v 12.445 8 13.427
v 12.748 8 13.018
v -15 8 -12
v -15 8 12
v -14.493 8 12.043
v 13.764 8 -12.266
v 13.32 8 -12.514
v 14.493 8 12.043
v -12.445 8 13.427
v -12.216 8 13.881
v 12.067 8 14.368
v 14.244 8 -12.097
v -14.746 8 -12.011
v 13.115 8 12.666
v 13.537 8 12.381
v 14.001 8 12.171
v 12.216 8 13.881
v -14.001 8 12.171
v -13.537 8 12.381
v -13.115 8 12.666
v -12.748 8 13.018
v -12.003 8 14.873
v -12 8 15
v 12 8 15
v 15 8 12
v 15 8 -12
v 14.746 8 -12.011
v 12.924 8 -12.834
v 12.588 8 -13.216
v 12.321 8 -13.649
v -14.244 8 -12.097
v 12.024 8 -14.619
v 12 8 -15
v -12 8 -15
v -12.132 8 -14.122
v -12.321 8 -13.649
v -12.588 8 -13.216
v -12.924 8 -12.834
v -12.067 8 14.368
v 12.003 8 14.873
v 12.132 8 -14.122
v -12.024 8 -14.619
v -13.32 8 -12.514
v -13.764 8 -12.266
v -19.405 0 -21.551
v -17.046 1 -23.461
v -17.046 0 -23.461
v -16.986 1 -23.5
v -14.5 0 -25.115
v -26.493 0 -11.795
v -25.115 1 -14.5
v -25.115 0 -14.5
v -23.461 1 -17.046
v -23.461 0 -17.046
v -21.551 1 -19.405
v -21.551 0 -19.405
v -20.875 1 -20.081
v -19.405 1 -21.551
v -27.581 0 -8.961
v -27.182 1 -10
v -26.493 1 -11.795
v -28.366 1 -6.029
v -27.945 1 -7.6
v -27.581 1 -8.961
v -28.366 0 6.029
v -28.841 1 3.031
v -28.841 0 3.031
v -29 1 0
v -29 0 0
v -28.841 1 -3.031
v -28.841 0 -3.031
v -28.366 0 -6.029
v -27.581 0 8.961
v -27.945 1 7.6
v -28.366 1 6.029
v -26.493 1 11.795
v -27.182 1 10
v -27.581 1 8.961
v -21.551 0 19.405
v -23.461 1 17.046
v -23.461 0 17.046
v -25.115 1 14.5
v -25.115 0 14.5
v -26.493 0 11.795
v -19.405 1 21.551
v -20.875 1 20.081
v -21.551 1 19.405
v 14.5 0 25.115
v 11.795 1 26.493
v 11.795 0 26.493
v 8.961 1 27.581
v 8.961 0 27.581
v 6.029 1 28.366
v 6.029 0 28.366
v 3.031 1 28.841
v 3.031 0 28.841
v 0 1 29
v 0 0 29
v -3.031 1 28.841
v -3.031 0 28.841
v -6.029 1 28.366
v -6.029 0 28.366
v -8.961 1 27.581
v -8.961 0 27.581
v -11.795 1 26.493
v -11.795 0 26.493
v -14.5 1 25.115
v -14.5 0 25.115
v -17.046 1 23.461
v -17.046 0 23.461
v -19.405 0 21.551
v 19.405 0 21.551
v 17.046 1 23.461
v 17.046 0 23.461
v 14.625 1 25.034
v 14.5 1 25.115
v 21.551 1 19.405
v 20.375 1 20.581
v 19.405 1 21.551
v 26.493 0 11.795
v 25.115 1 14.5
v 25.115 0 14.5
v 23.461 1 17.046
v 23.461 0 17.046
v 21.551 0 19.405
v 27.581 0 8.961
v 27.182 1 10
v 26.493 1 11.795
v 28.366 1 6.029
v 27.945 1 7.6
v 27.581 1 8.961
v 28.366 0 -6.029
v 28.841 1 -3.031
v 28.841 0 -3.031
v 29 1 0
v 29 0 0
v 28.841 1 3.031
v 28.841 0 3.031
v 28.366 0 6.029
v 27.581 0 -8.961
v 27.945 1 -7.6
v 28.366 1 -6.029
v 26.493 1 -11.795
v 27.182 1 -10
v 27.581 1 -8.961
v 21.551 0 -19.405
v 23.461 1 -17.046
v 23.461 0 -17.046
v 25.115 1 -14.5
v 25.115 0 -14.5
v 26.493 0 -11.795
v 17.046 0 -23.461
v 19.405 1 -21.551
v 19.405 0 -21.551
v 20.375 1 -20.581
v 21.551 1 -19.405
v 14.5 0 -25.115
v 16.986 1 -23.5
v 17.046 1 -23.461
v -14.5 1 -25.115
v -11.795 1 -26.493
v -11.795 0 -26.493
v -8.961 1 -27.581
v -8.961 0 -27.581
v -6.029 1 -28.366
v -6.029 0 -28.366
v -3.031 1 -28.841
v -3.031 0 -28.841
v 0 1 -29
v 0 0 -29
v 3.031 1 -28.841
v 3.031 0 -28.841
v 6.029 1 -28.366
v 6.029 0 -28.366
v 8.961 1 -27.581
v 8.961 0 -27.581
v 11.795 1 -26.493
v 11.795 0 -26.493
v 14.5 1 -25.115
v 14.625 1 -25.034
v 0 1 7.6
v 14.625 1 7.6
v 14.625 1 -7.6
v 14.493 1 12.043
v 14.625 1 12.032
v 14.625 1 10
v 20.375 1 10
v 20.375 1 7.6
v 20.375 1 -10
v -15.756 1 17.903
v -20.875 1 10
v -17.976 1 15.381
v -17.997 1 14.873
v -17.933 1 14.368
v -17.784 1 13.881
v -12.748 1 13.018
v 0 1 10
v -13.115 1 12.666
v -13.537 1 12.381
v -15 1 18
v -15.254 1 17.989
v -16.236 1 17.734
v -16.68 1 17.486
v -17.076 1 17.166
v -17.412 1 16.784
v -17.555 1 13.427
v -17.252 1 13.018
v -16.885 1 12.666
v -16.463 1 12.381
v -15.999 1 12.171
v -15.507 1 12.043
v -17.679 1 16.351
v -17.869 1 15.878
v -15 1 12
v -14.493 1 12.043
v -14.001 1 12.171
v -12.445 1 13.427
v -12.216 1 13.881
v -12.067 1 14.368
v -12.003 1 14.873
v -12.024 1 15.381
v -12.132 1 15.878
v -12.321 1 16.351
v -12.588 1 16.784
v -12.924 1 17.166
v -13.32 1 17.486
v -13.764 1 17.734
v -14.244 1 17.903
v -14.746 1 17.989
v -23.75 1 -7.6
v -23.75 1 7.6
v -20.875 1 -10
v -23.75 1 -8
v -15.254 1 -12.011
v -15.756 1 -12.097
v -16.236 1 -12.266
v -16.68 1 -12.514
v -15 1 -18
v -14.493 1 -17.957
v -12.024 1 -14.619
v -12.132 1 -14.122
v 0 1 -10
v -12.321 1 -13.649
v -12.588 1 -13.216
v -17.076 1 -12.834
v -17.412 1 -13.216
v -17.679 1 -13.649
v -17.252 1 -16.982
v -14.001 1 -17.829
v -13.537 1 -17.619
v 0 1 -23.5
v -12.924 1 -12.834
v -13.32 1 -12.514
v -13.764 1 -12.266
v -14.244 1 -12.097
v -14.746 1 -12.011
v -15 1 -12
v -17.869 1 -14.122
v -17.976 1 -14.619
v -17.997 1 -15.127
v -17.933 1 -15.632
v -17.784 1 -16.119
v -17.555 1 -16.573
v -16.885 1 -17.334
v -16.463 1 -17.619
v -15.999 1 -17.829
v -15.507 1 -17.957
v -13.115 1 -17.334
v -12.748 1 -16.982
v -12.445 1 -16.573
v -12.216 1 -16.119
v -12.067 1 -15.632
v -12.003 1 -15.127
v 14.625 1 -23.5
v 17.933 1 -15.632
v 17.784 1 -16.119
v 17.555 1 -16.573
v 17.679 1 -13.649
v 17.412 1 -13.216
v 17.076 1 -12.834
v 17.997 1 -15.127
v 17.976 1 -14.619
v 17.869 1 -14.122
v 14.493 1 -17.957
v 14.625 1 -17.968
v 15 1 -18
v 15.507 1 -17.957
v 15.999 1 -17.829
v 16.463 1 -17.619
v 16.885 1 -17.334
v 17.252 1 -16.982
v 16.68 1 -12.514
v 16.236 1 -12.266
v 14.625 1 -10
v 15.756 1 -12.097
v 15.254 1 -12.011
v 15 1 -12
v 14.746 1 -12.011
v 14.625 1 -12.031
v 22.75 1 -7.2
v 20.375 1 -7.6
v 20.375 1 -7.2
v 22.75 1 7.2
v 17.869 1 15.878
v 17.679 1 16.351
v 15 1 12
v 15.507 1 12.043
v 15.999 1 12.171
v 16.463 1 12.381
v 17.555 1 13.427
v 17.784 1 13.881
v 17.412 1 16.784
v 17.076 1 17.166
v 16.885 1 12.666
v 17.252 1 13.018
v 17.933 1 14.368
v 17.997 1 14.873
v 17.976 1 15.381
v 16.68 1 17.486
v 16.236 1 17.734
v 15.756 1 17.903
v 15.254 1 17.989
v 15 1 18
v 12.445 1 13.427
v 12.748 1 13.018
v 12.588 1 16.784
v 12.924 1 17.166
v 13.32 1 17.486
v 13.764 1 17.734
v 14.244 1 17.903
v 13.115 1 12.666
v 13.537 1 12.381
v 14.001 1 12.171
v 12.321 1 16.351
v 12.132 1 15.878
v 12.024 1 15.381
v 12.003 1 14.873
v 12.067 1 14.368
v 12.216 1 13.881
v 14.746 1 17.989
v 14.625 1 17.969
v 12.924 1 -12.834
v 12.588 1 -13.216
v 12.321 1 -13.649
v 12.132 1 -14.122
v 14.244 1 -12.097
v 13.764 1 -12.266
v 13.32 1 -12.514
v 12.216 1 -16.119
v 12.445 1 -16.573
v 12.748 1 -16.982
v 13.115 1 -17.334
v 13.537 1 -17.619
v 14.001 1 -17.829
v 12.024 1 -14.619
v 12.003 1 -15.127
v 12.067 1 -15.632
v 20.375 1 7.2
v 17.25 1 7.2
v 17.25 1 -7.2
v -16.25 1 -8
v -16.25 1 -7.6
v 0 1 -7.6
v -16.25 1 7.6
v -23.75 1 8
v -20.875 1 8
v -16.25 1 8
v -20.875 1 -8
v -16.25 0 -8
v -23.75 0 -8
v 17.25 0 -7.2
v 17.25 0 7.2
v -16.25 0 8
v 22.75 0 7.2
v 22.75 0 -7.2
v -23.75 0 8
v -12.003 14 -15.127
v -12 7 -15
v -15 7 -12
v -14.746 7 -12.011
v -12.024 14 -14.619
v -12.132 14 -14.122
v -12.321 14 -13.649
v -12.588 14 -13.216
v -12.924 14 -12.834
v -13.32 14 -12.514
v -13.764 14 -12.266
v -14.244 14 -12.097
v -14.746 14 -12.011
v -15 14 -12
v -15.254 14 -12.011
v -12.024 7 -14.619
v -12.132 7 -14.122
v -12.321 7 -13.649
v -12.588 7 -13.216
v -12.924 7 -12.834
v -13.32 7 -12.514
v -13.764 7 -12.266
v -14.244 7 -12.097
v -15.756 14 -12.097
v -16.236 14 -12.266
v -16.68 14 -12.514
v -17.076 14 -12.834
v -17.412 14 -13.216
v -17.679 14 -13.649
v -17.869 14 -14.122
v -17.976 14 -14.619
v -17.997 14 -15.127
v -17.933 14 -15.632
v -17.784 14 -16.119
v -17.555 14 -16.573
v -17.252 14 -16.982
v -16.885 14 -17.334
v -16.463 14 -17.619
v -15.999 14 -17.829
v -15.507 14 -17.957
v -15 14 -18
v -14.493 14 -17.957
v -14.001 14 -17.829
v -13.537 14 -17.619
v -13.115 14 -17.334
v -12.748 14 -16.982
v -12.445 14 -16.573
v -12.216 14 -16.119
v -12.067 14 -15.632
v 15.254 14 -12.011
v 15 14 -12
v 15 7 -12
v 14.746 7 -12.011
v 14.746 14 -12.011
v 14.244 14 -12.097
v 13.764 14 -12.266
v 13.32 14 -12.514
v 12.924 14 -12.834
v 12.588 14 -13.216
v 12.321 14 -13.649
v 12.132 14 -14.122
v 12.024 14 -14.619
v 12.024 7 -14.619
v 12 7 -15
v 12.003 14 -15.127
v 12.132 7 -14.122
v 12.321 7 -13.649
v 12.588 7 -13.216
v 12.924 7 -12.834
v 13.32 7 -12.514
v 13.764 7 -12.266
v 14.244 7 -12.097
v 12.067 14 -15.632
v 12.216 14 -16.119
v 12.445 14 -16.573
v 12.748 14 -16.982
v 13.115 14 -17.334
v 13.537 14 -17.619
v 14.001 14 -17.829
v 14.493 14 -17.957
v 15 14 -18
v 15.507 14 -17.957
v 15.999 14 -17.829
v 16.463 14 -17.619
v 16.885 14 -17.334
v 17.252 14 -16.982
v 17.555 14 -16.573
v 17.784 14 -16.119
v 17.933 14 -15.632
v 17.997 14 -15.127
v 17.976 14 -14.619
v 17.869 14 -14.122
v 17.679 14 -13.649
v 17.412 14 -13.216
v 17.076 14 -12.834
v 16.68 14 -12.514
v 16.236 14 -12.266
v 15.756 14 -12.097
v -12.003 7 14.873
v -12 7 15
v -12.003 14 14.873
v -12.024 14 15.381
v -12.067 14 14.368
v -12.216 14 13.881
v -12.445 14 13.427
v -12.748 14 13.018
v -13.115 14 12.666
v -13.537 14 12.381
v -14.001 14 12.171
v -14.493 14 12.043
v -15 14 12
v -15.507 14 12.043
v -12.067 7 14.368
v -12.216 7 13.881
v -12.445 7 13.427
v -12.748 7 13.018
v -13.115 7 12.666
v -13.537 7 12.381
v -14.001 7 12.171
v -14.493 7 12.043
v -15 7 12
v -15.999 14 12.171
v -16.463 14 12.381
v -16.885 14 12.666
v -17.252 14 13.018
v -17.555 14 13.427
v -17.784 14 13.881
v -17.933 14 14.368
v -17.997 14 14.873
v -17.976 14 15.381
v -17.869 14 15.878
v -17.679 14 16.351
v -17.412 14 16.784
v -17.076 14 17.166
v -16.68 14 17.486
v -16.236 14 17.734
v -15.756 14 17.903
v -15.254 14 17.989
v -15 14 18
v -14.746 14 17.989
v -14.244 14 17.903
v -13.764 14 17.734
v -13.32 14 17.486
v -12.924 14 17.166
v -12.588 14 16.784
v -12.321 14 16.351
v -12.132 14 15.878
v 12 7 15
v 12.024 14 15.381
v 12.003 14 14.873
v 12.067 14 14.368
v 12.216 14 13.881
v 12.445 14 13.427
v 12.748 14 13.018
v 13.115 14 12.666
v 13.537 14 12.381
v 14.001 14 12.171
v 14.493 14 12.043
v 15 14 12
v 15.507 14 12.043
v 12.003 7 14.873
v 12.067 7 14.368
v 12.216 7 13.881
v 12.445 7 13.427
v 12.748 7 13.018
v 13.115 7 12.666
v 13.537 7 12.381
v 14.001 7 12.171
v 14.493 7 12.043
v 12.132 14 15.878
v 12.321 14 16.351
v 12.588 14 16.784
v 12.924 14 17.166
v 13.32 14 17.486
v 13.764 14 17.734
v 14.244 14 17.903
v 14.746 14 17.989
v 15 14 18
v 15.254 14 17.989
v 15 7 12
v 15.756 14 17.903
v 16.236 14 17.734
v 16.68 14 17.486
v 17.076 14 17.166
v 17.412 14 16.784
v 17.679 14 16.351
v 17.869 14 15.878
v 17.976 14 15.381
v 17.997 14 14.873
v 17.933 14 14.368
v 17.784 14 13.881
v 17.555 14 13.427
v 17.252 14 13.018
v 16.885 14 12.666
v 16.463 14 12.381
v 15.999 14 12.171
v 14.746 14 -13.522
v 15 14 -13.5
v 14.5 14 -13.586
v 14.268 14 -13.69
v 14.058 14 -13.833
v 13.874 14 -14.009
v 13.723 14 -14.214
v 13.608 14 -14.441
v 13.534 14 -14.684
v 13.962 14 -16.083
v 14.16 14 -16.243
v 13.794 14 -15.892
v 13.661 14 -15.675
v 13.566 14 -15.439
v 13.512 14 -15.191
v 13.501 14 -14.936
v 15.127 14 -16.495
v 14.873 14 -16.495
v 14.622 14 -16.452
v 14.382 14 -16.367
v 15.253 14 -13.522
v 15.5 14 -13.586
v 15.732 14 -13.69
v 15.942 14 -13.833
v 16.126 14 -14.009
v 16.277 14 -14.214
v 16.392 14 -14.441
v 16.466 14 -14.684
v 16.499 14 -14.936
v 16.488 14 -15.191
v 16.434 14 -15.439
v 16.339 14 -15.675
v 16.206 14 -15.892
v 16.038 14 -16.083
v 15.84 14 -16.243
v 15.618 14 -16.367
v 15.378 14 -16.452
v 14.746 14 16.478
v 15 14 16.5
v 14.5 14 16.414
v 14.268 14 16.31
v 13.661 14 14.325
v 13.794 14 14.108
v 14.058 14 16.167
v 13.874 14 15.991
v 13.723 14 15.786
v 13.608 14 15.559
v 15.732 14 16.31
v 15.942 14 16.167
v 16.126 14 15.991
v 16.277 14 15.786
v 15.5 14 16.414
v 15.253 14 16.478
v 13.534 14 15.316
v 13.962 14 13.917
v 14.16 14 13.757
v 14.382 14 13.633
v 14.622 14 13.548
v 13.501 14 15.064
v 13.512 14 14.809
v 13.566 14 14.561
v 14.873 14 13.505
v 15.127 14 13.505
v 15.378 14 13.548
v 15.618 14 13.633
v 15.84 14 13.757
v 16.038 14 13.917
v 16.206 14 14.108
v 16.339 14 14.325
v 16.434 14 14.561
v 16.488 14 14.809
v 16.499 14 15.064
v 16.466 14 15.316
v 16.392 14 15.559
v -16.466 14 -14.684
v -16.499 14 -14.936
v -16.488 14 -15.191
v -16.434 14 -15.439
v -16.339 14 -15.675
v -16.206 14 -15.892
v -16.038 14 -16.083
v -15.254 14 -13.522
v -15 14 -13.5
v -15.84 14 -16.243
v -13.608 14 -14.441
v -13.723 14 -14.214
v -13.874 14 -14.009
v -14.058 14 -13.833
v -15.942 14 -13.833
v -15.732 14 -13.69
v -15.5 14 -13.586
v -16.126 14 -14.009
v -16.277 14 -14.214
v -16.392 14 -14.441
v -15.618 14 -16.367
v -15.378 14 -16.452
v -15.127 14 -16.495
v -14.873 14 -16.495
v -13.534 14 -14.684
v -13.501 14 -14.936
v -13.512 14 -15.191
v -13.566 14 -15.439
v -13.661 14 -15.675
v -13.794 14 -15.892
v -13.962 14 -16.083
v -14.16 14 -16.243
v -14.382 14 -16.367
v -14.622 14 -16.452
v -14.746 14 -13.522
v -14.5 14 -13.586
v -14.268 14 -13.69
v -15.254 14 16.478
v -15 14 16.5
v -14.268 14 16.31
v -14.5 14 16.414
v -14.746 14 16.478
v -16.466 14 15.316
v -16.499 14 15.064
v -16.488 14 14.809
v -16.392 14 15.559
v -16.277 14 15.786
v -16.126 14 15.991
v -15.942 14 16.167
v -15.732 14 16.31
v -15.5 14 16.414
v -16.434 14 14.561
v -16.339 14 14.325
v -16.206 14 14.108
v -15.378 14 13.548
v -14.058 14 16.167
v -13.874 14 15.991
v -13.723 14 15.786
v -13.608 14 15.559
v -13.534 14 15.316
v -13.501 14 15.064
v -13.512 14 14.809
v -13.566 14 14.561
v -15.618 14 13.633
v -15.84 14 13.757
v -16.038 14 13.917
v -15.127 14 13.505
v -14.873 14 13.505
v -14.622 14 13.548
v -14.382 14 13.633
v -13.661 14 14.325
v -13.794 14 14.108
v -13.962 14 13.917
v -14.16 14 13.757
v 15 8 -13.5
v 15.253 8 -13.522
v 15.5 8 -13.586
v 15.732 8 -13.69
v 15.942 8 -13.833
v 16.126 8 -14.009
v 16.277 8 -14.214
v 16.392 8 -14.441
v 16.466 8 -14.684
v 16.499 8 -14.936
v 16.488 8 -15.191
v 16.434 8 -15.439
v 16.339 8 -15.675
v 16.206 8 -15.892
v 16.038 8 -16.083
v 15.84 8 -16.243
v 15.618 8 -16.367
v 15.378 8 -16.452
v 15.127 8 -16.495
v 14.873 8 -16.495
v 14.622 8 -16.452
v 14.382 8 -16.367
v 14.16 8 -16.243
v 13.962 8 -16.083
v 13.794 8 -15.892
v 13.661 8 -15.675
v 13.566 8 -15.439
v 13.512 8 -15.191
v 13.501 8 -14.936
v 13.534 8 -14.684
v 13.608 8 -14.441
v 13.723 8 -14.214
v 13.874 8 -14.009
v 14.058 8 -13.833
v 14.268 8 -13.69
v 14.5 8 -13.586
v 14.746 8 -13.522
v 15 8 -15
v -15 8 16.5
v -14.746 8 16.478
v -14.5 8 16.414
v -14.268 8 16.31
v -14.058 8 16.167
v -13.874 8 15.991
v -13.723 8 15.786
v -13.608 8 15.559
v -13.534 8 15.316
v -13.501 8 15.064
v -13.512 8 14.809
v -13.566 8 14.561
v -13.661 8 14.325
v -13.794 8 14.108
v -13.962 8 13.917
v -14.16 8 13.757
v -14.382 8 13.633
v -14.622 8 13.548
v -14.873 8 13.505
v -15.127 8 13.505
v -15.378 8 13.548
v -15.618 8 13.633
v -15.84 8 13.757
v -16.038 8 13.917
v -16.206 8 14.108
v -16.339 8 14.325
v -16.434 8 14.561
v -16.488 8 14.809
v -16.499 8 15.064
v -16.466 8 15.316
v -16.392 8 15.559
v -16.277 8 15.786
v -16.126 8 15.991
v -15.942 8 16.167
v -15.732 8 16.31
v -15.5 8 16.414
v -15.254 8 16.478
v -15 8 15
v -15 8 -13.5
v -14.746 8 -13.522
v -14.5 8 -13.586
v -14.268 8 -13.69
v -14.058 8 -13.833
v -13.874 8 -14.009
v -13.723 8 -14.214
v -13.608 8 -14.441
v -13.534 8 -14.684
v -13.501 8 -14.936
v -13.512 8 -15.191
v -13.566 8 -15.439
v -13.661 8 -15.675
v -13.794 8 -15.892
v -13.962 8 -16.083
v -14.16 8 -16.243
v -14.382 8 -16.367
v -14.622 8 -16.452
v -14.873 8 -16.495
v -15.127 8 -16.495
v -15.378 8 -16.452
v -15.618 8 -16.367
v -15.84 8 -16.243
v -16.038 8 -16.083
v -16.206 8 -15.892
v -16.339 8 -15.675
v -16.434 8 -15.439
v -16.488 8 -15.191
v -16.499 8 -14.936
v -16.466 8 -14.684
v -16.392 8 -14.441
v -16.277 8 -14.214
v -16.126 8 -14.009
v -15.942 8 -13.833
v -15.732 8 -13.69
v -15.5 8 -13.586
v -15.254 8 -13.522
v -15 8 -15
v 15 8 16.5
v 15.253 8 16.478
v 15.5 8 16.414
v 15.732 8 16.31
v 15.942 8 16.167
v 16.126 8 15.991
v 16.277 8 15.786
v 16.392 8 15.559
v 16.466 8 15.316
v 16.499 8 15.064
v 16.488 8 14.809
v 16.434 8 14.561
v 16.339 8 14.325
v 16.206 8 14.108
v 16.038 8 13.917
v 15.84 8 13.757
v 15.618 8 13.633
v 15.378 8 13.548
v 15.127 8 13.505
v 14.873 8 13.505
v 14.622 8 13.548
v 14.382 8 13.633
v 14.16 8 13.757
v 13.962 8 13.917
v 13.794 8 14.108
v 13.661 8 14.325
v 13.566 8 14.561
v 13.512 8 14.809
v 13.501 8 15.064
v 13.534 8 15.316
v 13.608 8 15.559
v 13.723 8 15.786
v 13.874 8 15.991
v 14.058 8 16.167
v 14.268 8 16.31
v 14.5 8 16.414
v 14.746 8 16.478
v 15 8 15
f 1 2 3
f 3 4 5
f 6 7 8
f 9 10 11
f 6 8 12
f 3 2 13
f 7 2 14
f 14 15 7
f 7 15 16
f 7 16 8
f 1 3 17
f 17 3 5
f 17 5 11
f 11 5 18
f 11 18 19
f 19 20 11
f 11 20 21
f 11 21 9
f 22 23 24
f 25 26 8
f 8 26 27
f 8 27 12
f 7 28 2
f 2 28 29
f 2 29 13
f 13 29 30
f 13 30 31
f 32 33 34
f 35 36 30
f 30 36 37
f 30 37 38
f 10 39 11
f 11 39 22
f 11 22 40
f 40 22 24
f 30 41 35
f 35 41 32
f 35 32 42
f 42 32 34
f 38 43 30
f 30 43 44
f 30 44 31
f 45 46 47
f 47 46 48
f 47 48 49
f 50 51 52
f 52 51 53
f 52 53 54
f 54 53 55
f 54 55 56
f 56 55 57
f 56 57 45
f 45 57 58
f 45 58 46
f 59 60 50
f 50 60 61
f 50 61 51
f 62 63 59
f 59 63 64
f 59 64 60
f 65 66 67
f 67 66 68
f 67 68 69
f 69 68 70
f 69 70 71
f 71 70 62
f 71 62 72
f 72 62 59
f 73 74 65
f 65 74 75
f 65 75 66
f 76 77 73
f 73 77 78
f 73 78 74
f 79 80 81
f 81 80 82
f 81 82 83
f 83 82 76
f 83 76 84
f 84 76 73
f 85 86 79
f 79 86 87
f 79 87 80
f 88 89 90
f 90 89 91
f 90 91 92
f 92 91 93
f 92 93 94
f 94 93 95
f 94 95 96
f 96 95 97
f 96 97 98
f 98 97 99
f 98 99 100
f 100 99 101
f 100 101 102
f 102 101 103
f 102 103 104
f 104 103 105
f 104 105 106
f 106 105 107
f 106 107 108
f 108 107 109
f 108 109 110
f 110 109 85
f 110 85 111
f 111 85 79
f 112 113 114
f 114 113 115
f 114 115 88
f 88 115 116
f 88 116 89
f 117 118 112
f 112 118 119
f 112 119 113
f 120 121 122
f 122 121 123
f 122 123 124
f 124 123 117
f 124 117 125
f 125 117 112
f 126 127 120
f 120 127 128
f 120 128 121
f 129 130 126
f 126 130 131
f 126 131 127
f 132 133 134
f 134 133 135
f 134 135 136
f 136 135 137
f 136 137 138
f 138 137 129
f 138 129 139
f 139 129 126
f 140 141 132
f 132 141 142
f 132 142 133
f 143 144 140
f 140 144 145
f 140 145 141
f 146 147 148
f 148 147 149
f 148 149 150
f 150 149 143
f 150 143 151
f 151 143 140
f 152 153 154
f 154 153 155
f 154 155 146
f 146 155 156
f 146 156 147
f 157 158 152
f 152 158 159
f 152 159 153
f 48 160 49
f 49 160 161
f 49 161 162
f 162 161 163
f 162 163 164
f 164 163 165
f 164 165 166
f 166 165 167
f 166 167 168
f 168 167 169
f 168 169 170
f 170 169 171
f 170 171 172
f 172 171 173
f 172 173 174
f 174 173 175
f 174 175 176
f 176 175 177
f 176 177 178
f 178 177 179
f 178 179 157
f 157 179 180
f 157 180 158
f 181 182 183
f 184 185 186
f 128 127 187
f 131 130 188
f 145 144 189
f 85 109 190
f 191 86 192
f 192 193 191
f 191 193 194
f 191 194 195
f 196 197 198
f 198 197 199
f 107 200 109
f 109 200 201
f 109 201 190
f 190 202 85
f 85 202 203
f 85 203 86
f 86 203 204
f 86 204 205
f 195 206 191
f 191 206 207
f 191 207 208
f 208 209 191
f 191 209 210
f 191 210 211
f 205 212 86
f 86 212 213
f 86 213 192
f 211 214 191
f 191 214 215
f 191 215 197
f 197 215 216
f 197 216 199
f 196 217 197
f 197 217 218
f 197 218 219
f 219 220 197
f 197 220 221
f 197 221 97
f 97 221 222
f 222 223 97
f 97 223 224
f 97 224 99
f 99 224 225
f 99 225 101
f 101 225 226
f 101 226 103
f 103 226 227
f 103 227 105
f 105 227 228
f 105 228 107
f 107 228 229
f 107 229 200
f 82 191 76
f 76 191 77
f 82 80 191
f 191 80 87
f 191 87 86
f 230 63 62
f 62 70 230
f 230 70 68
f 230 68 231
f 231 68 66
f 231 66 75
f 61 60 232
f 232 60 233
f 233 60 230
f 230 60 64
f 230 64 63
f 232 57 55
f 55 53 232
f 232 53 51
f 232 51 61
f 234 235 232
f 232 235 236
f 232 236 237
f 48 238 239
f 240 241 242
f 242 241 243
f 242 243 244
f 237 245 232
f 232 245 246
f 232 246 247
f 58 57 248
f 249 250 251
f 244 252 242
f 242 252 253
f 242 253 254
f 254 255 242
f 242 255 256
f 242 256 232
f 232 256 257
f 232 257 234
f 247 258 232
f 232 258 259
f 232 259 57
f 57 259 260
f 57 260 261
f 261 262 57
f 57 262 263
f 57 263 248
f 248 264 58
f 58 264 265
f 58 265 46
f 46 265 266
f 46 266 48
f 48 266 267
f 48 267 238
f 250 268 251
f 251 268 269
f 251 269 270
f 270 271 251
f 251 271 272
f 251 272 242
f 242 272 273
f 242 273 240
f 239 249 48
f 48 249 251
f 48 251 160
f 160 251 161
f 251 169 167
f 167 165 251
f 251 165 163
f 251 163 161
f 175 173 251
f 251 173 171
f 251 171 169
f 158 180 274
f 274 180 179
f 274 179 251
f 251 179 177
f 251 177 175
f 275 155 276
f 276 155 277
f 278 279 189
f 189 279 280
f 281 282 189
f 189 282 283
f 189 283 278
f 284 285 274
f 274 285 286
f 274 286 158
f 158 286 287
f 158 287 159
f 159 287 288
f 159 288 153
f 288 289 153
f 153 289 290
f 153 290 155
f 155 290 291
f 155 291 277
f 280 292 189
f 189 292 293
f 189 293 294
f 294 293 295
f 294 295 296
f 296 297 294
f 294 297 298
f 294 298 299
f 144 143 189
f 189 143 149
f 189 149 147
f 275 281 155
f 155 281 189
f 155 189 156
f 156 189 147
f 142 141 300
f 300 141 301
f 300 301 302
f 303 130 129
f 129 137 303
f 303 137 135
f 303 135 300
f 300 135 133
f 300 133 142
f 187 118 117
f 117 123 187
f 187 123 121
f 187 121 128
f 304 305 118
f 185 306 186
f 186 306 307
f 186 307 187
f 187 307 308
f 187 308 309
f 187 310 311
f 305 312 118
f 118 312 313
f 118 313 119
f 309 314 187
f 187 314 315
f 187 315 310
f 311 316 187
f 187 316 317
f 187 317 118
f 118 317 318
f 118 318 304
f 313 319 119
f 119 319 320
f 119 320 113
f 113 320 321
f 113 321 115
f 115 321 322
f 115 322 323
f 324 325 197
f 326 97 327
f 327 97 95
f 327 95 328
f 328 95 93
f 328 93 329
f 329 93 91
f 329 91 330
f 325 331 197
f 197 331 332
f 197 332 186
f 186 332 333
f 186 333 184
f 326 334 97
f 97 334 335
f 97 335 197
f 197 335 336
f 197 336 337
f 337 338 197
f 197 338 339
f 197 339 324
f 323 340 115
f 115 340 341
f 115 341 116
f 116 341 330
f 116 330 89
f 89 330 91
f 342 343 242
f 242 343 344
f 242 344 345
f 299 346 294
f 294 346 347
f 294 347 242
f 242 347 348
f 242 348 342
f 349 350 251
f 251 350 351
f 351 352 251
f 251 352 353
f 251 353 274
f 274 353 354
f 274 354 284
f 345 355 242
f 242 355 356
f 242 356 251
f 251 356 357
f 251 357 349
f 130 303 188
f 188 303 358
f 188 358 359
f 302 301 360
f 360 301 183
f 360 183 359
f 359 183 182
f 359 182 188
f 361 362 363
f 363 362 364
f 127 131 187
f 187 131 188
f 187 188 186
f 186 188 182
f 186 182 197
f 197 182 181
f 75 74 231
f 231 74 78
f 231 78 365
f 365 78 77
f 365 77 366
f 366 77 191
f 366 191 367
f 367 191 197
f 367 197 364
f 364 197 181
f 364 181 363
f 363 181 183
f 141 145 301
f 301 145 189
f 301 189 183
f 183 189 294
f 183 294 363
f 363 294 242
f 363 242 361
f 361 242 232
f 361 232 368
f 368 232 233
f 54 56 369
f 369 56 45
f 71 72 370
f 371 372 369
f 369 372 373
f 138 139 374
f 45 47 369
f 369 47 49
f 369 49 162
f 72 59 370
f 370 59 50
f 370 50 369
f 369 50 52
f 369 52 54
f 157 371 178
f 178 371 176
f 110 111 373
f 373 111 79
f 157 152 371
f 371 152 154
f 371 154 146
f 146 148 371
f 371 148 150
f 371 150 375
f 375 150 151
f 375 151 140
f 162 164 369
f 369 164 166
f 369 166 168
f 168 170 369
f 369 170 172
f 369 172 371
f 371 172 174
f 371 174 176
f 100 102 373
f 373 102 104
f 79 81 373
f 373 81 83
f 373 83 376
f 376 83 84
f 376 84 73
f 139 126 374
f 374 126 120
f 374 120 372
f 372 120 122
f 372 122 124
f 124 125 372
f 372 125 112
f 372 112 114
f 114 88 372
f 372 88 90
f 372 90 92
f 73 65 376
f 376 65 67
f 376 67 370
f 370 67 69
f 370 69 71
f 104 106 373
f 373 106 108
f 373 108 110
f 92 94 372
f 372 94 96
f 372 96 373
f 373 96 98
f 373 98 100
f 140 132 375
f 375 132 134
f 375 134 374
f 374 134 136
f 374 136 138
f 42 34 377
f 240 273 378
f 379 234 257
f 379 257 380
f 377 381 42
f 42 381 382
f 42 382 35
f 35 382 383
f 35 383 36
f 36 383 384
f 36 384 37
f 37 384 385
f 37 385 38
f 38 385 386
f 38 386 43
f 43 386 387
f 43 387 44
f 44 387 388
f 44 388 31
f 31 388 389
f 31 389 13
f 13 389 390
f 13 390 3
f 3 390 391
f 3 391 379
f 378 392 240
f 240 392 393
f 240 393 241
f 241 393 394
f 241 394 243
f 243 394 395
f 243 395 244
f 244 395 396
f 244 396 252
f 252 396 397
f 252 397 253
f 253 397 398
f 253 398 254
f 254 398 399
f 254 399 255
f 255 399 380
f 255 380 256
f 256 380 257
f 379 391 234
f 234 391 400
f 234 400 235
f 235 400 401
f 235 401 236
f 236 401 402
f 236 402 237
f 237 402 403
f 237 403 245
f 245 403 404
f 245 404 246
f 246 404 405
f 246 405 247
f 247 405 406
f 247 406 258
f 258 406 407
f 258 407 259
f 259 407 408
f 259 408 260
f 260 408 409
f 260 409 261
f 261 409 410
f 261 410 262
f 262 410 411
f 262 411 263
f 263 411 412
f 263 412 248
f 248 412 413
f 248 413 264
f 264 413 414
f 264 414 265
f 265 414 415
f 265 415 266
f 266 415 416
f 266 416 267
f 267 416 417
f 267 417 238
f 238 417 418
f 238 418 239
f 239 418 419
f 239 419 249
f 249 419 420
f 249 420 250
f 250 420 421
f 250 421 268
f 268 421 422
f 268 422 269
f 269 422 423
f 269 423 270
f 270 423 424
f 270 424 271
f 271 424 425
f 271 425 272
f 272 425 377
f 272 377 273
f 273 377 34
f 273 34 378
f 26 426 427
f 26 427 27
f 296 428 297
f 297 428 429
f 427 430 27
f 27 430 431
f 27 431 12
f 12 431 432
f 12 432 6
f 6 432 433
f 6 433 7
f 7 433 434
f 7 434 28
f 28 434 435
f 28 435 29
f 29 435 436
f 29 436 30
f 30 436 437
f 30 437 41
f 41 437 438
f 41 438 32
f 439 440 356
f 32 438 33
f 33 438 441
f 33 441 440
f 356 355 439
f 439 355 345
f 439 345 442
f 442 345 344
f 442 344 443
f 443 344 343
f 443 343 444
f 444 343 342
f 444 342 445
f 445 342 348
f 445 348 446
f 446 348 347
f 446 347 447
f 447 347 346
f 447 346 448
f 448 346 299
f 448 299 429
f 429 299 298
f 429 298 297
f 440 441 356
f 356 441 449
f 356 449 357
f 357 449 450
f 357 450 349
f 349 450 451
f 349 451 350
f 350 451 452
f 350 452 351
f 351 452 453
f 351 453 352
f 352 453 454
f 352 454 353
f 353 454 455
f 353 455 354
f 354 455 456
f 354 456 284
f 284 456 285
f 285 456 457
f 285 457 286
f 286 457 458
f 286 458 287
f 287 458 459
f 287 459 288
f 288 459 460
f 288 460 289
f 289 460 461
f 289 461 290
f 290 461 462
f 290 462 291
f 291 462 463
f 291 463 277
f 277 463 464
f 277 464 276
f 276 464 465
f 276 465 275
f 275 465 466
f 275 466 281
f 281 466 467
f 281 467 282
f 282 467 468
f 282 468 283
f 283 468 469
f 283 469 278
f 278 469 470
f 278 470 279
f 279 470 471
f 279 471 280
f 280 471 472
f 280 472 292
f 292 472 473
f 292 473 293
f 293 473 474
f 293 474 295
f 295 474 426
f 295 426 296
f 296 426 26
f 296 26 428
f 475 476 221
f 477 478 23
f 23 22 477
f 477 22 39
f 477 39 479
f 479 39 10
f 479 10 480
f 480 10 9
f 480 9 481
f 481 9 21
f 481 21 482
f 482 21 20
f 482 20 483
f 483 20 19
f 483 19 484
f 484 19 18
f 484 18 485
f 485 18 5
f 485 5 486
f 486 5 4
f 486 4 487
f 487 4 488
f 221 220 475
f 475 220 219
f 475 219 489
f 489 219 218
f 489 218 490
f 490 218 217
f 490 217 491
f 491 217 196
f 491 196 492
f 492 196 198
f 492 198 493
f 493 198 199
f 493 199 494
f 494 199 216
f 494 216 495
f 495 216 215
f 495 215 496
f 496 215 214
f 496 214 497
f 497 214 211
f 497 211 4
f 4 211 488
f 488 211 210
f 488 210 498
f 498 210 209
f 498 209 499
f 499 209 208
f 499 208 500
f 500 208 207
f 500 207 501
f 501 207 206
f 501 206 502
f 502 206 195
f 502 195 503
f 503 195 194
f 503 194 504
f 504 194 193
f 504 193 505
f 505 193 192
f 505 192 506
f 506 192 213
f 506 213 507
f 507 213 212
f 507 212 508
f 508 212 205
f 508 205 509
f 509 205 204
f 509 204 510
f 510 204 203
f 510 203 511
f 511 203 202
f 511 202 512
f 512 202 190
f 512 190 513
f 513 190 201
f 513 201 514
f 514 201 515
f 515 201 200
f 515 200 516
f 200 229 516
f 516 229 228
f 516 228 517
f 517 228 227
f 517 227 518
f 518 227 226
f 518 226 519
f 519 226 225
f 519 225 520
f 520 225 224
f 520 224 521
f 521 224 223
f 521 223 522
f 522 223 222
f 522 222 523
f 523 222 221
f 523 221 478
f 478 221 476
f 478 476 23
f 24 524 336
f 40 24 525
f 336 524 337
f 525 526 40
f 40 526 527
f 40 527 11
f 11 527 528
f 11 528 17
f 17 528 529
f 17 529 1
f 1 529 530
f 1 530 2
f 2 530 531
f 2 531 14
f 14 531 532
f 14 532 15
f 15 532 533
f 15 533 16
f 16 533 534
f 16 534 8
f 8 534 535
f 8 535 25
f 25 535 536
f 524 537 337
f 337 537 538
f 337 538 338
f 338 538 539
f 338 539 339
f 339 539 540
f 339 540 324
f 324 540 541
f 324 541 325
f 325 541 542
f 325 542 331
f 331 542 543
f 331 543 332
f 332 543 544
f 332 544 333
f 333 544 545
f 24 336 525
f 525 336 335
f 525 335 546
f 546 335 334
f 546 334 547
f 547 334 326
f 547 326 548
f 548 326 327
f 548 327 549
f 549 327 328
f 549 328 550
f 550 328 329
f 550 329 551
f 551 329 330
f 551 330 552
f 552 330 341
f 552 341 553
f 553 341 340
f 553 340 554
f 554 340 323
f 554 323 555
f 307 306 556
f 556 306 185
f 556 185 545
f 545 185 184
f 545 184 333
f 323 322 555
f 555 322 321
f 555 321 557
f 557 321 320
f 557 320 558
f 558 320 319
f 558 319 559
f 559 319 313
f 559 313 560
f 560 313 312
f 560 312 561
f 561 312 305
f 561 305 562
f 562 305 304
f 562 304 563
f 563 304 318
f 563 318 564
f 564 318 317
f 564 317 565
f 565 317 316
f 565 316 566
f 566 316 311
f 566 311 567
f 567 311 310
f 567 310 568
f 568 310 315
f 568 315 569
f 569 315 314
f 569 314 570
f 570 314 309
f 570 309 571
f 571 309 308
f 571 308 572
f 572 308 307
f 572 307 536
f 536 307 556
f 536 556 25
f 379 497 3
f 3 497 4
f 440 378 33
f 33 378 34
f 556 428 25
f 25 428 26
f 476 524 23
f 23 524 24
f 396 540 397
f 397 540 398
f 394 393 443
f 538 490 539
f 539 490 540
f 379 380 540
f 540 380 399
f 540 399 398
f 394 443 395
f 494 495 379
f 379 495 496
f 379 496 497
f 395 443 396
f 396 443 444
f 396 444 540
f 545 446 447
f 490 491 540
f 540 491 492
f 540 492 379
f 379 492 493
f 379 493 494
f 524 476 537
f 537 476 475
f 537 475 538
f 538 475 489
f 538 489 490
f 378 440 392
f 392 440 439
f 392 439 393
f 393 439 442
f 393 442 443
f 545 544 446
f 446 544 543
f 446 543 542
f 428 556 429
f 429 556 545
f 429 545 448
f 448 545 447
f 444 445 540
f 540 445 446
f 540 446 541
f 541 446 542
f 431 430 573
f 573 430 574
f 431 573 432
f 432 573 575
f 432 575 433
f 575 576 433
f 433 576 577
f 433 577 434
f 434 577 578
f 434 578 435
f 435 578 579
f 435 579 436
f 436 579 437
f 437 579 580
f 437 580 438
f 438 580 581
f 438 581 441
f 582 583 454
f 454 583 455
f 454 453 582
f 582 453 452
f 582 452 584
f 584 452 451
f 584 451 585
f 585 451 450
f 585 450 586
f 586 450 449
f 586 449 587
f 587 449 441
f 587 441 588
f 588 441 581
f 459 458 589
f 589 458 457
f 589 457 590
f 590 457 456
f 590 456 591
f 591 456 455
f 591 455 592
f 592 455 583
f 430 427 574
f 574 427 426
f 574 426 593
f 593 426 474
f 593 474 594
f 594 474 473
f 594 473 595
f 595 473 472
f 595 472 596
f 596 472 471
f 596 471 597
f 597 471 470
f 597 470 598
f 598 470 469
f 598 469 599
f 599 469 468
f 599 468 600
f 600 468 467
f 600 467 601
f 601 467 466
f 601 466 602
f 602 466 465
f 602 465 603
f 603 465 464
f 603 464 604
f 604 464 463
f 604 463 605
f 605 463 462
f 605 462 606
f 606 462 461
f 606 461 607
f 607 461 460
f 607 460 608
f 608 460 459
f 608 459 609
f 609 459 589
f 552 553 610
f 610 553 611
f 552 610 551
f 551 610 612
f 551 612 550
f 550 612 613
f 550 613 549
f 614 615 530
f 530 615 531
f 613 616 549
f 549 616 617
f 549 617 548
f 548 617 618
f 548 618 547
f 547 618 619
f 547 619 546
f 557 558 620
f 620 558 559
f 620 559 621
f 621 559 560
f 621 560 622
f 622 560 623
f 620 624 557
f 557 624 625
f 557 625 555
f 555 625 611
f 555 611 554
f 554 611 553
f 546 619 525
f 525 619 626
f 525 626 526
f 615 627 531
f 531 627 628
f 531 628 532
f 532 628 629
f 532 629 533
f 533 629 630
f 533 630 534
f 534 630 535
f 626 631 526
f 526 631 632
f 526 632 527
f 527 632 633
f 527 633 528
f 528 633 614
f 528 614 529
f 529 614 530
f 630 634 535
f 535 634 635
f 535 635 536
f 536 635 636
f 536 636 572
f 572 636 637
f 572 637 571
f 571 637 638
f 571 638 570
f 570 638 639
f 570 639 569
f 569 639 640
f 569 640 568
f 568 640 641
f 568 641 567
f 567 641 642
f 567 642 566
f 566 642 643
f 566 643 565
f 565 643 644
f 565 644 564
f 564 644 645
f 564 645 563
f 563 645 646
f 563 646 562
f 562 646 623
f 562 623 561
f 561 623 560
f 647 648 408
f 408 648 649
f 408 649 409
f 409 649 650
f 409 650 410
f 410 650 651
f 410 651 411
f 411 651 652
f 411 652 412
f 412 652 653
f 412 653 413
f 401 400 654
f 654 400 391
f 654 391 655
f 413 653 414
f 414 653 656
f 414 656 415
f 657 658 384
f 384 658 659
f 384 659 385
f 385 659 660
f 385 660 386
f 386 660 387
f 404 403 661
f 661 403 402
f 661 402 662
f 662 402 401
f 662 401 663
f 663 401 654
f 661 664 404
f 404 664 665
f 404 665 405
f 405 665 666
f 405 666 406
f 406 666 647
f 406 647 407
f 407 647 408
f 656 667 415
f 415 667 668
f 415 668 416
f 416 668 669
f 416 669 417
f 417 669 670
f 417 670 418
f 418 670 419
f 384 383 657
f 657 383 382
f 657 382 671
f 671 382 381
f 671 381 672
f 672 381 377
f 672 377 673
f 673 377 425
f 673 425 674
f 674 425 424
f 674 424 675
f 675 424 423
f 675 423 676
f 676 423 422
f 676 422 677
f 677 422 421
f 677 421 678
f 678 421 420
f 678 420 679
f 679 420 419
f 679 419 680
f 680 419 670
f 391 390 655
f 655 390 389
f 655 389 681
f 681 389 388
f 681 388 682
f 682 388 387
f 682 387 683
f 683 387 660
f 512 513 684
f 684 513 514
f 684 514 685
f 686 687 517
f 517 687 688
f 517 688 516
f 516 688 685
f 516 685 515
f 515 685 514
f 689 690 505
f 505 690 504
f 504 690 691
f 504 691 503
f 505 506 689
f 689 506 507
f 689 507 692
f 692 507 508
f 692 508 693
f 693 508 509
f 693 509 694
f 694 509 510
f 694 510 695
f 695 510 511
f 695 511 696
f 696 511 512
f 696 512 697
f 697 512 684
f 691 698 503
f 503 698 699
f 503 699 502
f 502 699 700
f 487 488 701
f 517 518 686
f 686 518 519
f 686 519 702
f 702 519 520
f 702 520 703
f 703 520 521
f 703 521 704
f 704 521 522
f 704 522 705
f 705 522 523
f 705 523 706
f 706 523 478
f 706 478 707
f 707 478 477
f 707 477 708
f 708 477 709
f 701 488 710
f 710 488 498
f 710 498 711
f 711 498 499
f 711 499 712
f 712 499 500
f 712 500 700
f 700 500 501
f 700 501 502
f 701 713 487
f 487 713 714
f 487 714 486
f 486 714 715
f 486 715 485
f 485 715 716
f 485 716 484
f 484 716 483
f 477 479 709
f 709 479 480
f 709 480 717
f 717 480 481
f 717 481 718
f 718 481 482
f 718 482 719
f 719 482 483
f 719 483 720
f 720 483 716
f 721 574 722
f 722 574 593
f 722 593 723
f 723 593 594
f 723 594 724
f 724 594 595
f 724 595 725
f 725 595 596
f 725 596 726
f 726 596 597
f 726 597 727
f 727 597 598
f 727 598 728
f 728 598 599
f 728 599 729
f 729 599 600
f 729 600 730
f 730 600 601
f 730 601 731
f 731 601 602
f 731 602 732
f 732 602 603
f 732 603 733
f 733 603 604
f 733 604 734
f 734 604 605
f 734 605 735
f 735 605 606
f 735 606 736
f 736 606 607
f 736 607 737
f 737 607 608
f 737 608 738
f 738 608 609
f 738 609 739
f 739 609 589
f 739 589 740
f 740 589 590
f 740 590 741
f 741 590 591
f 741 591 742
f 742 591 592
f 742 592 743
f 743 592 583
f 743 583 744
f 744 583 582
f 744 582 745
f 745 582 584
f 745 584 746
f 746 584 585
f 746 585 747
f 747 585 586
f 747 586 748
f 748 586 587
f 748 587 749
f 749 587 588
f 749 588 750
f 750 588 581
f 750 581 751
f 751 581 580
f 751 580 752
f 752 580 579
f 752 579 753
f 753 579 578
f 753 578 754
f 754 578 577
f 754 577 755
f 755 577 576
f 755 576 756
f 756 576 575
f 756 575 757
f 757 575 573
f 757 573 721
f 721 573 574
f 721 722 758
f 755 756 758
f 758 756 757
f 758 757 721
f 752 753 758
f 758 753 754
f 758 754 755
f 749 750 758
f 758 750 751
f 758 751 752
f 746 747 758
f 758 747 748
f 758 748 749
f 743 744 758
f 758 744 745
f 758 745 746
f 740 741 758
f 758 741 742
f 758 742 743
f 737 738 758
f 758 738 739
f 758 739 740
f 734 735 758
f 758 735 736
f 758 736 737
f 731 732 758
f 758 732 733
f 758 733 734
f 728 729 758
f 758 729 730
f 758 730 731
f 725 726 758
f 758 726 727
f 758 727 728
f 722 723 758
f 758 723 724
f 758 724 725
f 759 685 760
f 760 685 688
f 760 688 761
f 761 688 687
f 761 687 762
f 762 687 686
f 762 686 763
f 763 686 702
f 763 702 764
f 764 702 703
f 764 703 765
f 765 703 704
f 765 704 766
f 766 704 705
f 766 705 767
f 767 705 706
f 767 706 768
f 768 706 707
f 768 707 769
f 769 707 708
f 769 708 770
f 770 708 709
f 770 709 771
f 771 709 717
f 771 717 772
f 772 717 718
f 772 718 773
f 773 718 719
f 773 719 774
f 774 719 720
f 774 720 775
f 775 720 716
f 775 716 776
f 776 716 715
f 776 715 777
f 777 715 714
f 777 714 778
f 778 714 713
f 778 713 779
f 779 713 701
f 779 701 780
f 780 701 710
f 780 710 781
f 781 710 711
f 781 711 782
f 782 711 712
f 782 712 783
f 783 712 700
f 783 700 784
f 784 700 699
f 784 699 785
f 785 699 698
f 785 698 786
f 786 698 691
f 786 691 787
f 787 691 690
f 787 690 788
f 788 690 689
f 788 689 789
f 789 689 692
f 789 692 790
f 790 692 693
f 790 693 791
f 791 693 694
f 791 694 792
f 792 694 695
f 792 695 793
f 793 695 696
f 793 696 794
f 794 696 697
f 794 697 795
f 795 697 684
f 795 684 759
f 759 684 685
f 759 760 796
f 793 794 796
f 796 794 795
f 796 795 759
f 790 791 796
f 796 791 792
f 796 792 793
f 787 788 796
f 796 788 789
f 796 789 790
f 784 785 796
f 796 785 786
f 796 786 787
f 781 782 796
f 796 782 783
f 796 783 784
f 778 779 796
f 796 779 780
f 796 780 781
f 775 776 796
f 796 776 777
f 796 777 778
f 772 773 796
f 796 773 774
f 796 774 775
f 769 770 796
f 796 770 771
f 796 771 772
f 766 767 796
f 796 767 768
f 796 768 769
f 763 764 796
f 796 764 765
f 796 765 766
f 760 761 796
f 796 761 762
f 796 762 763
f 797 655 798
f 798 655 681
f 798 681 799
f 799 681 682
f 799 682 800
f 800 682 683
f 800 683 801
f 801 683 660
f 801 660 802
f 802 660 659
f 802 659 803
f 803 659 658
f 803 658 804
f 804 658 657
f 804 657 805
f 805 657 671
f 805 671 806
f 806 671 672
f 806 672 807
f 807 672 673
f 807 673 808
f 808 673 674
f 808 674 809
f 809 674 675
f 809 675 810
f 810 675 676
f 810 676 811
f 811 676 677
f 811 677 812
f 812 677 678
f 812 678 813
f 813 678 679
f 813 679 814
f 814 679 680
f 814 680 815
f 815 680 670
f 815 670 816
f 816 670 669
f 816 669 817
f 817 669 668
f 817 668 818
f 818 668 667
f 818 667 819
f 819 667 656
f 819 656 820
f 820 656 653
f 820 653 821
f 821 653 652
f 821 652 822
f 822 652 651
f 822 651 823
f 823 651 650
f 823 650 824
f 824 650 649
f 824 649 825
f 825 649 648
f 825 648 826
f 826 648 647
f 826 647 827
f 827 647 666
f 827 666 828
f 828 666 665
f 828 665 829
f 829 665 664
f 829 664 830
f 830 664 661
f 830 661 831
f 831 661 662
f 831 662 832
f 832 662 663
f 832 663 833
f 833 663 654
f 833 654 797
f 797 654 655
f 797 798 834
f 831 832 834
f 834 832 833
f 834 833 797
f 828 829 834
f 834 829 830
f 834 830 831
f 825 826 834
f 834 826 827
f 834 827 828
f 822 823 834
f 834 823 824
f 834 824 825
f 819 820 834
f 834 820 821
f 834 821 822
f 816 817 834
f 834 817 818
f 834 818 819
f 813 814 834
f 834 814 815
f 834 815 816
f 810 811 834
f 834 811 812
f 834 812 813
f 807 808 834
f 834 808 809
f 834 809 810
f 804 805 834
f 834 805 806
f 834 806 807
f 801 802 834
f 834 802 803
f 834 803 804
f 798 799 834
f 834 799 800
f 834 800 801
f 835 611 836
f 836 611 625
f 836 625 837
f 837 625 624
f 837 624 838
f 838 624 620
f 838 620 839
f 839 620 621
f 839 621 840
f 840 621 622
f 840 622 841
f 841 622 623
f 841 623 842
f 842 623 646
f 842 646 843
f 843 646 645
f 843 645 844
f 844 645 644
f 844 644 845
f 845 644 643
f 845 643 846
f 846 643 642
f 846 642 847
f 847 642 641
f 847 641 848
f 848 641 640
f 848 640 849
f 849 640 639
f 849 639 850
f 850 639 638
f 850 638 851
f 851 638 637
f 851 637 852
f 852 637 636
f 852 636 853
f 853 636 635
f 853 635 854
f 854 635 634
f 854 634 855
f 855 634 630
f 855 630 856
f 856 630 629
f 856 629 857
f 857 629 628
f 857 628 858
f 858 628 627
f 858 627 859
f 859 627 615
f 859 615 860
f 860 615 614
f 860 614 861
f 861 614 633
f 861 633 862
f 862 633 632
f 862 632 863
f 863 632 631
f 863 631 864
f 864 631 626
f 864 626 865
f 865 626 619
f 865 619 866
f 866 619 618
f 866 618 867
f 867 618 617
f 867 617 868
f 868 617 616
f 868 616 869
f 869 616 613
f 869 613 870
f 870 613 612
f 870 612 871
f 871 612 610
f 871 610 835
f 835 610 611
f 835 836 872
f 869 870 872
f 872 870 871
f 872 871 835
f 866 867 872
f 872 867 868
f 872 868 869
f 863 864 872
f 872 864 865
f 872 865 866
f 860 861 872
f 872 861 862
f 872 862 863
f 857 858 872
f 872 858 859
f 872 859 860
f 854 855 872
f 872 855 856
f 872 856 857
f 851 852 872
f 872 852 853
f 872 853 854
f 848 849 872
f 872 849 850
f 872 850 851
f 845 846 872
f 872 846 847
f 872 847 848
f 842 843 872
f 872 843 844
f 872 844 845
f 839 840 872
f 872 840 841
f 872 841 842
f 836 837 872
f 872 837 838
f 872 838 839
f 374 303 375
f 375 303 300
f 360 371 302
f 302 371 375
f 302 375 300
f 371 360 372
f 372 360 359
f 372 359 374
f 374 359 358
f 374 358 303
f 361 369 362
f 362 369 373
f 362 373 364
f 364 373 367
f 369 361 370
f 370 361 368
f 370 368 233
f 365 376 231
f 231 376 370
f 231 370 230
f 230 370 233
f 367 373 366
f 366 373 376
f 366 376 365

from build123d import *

# Parameters (mm, degrees)
CROQUIS1_R              = 29
SALIENTE_EXTRUIR1_DEPTH = 1
CROQUIS2_R              = 3
SALIENTE_EXTRUIR2_DEPTH = 7
SALIENTE_EXTRUIR3_START = -1
SALIENTE_EXTRUIR3_DEPTH = 1
CROQUIS4_R              = 3
SALIENTE_EXTRUIR4_DEPTH = 6
CROQUIS5_R              = 1.5
CORTAR_EXTRUIR1_DEPTH   = 6
CORTAR_EXTRUIR2_REACH   = 45.336
CROQUIS6_W              = 5.5
CROQUIS6_H              = 14.4
CROQUIS6_W_2            = 7.5
CROQUIS6_H_2            = 16


with BuildPart() as part:
    # Croquis1 → Saliente-Extruir1 (new body)
    with BuildSketch(Plane(origin=(0, 0, 0), x_dir=(1, 0, 0), z_dir=(0, 1, 0))):
        with Locations(Location((0, 0, 0), (0, 0, 270))):
            Circle(CROQUIS1_R)
    extrude(amount=SALIENTE_EXTRUIR1_DEPTH)

    # Croquis2 → Saliente-Extruir2 (add)
    with BuildSketch(Plane(origin=(0, 1, 0), x_dir=(1, 0, 0), z_dir=(0, 1, 0))):
        with Locations(Location((-15, 15, 0), (0, 0, 270))):
            Circle(CROQUIS2_R)
        with Locations(Location((15, 15, 0), (0, 0, 270))):
            Circle(CROQUIS2_R)
        with Locations(Location((-15, -15, 0), (0, 0, 270))):
            Circle(CROQUIS2_R)
        with Locations(Location((15, -15, 0), (0, 0, 270))):
            Circle(CROQUIS2_R)
    extrude(amount=SALIENTE_EXTRUIR2_DEPTH)

    # Croquis3 → Saliente-Extruir3 (add)
    with BuildSketch(Plane(origin=(0, 8, 0), x_dir=(1, 0, 0), z_dir=(0, 1, 0)).offset(SALIENTE_EXTRUIR3_START)):
        with BuildLine():
            Line((-15, -12), (-15, 12))
            ThreePointArc((-15, 12), (-12.878679656, 12.878679656), (-12, 15))
            Line((-12, 15), (12, 15))
            ThreePointArc((12, 15), (12.878679656, 12.878679656), (15, 12))
            Line((15, 12), (15, -12))
            ThreePointArc((15, -12), (12.878679656, -12.878679656), (12, -15))
            Line((12, -15), (-12, -15))
            ThreePointArc((-12, -15), (-12.878679656, -12.878679656), (-15, -12))
        make_face()
    extrude(amount=SALIENTE_EXTRUIR3_DEPTH)

    # Croquis4 → Saliente-Extruir4 (add)
    with BuildSketch(Plane(origin=(0, 8, 0), x_dir=(1, 0, 0), z_dir=(0, 1, 0))):
        with Locations(Location((15, 15, 0), (0, 0, 270))):
            Circle(CROQUIS4_R)
        with Locations(Location((15, -15, 0), (0, 0, 270))):
            Circle(CROQUIS4_R)
        with Locations(Location((-15, 15, 0), (0, 0, 270))):
            Circle(CROQUIS4_R)
        with Locations(Location((-15, -15, 0), (0, 0, 270))):
            Circle(CROQUIS4_R)
    extrude(amount=SALIENTE_EXTRUIR4_DEPTH)

    # Croquis5 → Cortar-Extruir1 (cut)
    with BuildSketch(Plane(origin=(0, 14, 0), x_dir=(1, 0, 0), z_dir=(0, 1, 0))):
        with Locations(Location((15, 15, 0), (0, 0, 270))):
            Circle(CROQUIS5_R)
        with Locations(Location((15, -15, 0), (0, 0, 270))):
            Circle(CROQUIS5_R)
        with Locations(Location((-15, -15, 0), (0, 0, 270))):
            Circle(CROQUIS5_R)
        with Locations(Location((-15, 15, 0), (0, 0, 270))):
            Circle(CROQUIS5_R)
    extrude(amount=-CORTAR_EXTRUIR1_DEPTH, mode=Mode.SUBTRACT)

    # Croquis6 → Cortar-Extruir2 (cut, up to next)
    with BuildSketch(Plane.XZ, mode=Mode.PRIVATE) as cortar_extruir2_sk1:
        with Locations((20, 0)):
            Rectangle(CROQUIS6_W, CROQUIS6_H)
    cortar_extruir2_tool1 = extrude(cortar_extruir2_sk1.sketch, amount=-CORTAR_EXTRUIR2_REACH, mode=Mode.PRIVATE) & part.part
    # Croquis6 → Cortar-Extruir2 (cut, up to next)
    with BuildSketch(Plane.XZ, mode=Mode.PRIVATE) as cortar_extruir2_sk2:
        with Locations((-20, 0)):
            Rectangle(CROQUIS6_W_2, CROQUIS6_H_2)
    cortar_extruir2_tool2 = extrude(cortar_extruir2_sk2.sketch, amount=-CORTAR_EXTRUIR2_REACH, mode=Mode.PRIVATE) & part.part
    add(cortar_extruir2_tool1.solids().sort_by_distance((20, 0, 0))[0], mode=Mode.SUBTRACT)
    add(cortar_extruir2_tool2.solids().sort_by_distance((-20, 0, 0))[0], mode=Mode.SUBTRACT)


solid = part.part
